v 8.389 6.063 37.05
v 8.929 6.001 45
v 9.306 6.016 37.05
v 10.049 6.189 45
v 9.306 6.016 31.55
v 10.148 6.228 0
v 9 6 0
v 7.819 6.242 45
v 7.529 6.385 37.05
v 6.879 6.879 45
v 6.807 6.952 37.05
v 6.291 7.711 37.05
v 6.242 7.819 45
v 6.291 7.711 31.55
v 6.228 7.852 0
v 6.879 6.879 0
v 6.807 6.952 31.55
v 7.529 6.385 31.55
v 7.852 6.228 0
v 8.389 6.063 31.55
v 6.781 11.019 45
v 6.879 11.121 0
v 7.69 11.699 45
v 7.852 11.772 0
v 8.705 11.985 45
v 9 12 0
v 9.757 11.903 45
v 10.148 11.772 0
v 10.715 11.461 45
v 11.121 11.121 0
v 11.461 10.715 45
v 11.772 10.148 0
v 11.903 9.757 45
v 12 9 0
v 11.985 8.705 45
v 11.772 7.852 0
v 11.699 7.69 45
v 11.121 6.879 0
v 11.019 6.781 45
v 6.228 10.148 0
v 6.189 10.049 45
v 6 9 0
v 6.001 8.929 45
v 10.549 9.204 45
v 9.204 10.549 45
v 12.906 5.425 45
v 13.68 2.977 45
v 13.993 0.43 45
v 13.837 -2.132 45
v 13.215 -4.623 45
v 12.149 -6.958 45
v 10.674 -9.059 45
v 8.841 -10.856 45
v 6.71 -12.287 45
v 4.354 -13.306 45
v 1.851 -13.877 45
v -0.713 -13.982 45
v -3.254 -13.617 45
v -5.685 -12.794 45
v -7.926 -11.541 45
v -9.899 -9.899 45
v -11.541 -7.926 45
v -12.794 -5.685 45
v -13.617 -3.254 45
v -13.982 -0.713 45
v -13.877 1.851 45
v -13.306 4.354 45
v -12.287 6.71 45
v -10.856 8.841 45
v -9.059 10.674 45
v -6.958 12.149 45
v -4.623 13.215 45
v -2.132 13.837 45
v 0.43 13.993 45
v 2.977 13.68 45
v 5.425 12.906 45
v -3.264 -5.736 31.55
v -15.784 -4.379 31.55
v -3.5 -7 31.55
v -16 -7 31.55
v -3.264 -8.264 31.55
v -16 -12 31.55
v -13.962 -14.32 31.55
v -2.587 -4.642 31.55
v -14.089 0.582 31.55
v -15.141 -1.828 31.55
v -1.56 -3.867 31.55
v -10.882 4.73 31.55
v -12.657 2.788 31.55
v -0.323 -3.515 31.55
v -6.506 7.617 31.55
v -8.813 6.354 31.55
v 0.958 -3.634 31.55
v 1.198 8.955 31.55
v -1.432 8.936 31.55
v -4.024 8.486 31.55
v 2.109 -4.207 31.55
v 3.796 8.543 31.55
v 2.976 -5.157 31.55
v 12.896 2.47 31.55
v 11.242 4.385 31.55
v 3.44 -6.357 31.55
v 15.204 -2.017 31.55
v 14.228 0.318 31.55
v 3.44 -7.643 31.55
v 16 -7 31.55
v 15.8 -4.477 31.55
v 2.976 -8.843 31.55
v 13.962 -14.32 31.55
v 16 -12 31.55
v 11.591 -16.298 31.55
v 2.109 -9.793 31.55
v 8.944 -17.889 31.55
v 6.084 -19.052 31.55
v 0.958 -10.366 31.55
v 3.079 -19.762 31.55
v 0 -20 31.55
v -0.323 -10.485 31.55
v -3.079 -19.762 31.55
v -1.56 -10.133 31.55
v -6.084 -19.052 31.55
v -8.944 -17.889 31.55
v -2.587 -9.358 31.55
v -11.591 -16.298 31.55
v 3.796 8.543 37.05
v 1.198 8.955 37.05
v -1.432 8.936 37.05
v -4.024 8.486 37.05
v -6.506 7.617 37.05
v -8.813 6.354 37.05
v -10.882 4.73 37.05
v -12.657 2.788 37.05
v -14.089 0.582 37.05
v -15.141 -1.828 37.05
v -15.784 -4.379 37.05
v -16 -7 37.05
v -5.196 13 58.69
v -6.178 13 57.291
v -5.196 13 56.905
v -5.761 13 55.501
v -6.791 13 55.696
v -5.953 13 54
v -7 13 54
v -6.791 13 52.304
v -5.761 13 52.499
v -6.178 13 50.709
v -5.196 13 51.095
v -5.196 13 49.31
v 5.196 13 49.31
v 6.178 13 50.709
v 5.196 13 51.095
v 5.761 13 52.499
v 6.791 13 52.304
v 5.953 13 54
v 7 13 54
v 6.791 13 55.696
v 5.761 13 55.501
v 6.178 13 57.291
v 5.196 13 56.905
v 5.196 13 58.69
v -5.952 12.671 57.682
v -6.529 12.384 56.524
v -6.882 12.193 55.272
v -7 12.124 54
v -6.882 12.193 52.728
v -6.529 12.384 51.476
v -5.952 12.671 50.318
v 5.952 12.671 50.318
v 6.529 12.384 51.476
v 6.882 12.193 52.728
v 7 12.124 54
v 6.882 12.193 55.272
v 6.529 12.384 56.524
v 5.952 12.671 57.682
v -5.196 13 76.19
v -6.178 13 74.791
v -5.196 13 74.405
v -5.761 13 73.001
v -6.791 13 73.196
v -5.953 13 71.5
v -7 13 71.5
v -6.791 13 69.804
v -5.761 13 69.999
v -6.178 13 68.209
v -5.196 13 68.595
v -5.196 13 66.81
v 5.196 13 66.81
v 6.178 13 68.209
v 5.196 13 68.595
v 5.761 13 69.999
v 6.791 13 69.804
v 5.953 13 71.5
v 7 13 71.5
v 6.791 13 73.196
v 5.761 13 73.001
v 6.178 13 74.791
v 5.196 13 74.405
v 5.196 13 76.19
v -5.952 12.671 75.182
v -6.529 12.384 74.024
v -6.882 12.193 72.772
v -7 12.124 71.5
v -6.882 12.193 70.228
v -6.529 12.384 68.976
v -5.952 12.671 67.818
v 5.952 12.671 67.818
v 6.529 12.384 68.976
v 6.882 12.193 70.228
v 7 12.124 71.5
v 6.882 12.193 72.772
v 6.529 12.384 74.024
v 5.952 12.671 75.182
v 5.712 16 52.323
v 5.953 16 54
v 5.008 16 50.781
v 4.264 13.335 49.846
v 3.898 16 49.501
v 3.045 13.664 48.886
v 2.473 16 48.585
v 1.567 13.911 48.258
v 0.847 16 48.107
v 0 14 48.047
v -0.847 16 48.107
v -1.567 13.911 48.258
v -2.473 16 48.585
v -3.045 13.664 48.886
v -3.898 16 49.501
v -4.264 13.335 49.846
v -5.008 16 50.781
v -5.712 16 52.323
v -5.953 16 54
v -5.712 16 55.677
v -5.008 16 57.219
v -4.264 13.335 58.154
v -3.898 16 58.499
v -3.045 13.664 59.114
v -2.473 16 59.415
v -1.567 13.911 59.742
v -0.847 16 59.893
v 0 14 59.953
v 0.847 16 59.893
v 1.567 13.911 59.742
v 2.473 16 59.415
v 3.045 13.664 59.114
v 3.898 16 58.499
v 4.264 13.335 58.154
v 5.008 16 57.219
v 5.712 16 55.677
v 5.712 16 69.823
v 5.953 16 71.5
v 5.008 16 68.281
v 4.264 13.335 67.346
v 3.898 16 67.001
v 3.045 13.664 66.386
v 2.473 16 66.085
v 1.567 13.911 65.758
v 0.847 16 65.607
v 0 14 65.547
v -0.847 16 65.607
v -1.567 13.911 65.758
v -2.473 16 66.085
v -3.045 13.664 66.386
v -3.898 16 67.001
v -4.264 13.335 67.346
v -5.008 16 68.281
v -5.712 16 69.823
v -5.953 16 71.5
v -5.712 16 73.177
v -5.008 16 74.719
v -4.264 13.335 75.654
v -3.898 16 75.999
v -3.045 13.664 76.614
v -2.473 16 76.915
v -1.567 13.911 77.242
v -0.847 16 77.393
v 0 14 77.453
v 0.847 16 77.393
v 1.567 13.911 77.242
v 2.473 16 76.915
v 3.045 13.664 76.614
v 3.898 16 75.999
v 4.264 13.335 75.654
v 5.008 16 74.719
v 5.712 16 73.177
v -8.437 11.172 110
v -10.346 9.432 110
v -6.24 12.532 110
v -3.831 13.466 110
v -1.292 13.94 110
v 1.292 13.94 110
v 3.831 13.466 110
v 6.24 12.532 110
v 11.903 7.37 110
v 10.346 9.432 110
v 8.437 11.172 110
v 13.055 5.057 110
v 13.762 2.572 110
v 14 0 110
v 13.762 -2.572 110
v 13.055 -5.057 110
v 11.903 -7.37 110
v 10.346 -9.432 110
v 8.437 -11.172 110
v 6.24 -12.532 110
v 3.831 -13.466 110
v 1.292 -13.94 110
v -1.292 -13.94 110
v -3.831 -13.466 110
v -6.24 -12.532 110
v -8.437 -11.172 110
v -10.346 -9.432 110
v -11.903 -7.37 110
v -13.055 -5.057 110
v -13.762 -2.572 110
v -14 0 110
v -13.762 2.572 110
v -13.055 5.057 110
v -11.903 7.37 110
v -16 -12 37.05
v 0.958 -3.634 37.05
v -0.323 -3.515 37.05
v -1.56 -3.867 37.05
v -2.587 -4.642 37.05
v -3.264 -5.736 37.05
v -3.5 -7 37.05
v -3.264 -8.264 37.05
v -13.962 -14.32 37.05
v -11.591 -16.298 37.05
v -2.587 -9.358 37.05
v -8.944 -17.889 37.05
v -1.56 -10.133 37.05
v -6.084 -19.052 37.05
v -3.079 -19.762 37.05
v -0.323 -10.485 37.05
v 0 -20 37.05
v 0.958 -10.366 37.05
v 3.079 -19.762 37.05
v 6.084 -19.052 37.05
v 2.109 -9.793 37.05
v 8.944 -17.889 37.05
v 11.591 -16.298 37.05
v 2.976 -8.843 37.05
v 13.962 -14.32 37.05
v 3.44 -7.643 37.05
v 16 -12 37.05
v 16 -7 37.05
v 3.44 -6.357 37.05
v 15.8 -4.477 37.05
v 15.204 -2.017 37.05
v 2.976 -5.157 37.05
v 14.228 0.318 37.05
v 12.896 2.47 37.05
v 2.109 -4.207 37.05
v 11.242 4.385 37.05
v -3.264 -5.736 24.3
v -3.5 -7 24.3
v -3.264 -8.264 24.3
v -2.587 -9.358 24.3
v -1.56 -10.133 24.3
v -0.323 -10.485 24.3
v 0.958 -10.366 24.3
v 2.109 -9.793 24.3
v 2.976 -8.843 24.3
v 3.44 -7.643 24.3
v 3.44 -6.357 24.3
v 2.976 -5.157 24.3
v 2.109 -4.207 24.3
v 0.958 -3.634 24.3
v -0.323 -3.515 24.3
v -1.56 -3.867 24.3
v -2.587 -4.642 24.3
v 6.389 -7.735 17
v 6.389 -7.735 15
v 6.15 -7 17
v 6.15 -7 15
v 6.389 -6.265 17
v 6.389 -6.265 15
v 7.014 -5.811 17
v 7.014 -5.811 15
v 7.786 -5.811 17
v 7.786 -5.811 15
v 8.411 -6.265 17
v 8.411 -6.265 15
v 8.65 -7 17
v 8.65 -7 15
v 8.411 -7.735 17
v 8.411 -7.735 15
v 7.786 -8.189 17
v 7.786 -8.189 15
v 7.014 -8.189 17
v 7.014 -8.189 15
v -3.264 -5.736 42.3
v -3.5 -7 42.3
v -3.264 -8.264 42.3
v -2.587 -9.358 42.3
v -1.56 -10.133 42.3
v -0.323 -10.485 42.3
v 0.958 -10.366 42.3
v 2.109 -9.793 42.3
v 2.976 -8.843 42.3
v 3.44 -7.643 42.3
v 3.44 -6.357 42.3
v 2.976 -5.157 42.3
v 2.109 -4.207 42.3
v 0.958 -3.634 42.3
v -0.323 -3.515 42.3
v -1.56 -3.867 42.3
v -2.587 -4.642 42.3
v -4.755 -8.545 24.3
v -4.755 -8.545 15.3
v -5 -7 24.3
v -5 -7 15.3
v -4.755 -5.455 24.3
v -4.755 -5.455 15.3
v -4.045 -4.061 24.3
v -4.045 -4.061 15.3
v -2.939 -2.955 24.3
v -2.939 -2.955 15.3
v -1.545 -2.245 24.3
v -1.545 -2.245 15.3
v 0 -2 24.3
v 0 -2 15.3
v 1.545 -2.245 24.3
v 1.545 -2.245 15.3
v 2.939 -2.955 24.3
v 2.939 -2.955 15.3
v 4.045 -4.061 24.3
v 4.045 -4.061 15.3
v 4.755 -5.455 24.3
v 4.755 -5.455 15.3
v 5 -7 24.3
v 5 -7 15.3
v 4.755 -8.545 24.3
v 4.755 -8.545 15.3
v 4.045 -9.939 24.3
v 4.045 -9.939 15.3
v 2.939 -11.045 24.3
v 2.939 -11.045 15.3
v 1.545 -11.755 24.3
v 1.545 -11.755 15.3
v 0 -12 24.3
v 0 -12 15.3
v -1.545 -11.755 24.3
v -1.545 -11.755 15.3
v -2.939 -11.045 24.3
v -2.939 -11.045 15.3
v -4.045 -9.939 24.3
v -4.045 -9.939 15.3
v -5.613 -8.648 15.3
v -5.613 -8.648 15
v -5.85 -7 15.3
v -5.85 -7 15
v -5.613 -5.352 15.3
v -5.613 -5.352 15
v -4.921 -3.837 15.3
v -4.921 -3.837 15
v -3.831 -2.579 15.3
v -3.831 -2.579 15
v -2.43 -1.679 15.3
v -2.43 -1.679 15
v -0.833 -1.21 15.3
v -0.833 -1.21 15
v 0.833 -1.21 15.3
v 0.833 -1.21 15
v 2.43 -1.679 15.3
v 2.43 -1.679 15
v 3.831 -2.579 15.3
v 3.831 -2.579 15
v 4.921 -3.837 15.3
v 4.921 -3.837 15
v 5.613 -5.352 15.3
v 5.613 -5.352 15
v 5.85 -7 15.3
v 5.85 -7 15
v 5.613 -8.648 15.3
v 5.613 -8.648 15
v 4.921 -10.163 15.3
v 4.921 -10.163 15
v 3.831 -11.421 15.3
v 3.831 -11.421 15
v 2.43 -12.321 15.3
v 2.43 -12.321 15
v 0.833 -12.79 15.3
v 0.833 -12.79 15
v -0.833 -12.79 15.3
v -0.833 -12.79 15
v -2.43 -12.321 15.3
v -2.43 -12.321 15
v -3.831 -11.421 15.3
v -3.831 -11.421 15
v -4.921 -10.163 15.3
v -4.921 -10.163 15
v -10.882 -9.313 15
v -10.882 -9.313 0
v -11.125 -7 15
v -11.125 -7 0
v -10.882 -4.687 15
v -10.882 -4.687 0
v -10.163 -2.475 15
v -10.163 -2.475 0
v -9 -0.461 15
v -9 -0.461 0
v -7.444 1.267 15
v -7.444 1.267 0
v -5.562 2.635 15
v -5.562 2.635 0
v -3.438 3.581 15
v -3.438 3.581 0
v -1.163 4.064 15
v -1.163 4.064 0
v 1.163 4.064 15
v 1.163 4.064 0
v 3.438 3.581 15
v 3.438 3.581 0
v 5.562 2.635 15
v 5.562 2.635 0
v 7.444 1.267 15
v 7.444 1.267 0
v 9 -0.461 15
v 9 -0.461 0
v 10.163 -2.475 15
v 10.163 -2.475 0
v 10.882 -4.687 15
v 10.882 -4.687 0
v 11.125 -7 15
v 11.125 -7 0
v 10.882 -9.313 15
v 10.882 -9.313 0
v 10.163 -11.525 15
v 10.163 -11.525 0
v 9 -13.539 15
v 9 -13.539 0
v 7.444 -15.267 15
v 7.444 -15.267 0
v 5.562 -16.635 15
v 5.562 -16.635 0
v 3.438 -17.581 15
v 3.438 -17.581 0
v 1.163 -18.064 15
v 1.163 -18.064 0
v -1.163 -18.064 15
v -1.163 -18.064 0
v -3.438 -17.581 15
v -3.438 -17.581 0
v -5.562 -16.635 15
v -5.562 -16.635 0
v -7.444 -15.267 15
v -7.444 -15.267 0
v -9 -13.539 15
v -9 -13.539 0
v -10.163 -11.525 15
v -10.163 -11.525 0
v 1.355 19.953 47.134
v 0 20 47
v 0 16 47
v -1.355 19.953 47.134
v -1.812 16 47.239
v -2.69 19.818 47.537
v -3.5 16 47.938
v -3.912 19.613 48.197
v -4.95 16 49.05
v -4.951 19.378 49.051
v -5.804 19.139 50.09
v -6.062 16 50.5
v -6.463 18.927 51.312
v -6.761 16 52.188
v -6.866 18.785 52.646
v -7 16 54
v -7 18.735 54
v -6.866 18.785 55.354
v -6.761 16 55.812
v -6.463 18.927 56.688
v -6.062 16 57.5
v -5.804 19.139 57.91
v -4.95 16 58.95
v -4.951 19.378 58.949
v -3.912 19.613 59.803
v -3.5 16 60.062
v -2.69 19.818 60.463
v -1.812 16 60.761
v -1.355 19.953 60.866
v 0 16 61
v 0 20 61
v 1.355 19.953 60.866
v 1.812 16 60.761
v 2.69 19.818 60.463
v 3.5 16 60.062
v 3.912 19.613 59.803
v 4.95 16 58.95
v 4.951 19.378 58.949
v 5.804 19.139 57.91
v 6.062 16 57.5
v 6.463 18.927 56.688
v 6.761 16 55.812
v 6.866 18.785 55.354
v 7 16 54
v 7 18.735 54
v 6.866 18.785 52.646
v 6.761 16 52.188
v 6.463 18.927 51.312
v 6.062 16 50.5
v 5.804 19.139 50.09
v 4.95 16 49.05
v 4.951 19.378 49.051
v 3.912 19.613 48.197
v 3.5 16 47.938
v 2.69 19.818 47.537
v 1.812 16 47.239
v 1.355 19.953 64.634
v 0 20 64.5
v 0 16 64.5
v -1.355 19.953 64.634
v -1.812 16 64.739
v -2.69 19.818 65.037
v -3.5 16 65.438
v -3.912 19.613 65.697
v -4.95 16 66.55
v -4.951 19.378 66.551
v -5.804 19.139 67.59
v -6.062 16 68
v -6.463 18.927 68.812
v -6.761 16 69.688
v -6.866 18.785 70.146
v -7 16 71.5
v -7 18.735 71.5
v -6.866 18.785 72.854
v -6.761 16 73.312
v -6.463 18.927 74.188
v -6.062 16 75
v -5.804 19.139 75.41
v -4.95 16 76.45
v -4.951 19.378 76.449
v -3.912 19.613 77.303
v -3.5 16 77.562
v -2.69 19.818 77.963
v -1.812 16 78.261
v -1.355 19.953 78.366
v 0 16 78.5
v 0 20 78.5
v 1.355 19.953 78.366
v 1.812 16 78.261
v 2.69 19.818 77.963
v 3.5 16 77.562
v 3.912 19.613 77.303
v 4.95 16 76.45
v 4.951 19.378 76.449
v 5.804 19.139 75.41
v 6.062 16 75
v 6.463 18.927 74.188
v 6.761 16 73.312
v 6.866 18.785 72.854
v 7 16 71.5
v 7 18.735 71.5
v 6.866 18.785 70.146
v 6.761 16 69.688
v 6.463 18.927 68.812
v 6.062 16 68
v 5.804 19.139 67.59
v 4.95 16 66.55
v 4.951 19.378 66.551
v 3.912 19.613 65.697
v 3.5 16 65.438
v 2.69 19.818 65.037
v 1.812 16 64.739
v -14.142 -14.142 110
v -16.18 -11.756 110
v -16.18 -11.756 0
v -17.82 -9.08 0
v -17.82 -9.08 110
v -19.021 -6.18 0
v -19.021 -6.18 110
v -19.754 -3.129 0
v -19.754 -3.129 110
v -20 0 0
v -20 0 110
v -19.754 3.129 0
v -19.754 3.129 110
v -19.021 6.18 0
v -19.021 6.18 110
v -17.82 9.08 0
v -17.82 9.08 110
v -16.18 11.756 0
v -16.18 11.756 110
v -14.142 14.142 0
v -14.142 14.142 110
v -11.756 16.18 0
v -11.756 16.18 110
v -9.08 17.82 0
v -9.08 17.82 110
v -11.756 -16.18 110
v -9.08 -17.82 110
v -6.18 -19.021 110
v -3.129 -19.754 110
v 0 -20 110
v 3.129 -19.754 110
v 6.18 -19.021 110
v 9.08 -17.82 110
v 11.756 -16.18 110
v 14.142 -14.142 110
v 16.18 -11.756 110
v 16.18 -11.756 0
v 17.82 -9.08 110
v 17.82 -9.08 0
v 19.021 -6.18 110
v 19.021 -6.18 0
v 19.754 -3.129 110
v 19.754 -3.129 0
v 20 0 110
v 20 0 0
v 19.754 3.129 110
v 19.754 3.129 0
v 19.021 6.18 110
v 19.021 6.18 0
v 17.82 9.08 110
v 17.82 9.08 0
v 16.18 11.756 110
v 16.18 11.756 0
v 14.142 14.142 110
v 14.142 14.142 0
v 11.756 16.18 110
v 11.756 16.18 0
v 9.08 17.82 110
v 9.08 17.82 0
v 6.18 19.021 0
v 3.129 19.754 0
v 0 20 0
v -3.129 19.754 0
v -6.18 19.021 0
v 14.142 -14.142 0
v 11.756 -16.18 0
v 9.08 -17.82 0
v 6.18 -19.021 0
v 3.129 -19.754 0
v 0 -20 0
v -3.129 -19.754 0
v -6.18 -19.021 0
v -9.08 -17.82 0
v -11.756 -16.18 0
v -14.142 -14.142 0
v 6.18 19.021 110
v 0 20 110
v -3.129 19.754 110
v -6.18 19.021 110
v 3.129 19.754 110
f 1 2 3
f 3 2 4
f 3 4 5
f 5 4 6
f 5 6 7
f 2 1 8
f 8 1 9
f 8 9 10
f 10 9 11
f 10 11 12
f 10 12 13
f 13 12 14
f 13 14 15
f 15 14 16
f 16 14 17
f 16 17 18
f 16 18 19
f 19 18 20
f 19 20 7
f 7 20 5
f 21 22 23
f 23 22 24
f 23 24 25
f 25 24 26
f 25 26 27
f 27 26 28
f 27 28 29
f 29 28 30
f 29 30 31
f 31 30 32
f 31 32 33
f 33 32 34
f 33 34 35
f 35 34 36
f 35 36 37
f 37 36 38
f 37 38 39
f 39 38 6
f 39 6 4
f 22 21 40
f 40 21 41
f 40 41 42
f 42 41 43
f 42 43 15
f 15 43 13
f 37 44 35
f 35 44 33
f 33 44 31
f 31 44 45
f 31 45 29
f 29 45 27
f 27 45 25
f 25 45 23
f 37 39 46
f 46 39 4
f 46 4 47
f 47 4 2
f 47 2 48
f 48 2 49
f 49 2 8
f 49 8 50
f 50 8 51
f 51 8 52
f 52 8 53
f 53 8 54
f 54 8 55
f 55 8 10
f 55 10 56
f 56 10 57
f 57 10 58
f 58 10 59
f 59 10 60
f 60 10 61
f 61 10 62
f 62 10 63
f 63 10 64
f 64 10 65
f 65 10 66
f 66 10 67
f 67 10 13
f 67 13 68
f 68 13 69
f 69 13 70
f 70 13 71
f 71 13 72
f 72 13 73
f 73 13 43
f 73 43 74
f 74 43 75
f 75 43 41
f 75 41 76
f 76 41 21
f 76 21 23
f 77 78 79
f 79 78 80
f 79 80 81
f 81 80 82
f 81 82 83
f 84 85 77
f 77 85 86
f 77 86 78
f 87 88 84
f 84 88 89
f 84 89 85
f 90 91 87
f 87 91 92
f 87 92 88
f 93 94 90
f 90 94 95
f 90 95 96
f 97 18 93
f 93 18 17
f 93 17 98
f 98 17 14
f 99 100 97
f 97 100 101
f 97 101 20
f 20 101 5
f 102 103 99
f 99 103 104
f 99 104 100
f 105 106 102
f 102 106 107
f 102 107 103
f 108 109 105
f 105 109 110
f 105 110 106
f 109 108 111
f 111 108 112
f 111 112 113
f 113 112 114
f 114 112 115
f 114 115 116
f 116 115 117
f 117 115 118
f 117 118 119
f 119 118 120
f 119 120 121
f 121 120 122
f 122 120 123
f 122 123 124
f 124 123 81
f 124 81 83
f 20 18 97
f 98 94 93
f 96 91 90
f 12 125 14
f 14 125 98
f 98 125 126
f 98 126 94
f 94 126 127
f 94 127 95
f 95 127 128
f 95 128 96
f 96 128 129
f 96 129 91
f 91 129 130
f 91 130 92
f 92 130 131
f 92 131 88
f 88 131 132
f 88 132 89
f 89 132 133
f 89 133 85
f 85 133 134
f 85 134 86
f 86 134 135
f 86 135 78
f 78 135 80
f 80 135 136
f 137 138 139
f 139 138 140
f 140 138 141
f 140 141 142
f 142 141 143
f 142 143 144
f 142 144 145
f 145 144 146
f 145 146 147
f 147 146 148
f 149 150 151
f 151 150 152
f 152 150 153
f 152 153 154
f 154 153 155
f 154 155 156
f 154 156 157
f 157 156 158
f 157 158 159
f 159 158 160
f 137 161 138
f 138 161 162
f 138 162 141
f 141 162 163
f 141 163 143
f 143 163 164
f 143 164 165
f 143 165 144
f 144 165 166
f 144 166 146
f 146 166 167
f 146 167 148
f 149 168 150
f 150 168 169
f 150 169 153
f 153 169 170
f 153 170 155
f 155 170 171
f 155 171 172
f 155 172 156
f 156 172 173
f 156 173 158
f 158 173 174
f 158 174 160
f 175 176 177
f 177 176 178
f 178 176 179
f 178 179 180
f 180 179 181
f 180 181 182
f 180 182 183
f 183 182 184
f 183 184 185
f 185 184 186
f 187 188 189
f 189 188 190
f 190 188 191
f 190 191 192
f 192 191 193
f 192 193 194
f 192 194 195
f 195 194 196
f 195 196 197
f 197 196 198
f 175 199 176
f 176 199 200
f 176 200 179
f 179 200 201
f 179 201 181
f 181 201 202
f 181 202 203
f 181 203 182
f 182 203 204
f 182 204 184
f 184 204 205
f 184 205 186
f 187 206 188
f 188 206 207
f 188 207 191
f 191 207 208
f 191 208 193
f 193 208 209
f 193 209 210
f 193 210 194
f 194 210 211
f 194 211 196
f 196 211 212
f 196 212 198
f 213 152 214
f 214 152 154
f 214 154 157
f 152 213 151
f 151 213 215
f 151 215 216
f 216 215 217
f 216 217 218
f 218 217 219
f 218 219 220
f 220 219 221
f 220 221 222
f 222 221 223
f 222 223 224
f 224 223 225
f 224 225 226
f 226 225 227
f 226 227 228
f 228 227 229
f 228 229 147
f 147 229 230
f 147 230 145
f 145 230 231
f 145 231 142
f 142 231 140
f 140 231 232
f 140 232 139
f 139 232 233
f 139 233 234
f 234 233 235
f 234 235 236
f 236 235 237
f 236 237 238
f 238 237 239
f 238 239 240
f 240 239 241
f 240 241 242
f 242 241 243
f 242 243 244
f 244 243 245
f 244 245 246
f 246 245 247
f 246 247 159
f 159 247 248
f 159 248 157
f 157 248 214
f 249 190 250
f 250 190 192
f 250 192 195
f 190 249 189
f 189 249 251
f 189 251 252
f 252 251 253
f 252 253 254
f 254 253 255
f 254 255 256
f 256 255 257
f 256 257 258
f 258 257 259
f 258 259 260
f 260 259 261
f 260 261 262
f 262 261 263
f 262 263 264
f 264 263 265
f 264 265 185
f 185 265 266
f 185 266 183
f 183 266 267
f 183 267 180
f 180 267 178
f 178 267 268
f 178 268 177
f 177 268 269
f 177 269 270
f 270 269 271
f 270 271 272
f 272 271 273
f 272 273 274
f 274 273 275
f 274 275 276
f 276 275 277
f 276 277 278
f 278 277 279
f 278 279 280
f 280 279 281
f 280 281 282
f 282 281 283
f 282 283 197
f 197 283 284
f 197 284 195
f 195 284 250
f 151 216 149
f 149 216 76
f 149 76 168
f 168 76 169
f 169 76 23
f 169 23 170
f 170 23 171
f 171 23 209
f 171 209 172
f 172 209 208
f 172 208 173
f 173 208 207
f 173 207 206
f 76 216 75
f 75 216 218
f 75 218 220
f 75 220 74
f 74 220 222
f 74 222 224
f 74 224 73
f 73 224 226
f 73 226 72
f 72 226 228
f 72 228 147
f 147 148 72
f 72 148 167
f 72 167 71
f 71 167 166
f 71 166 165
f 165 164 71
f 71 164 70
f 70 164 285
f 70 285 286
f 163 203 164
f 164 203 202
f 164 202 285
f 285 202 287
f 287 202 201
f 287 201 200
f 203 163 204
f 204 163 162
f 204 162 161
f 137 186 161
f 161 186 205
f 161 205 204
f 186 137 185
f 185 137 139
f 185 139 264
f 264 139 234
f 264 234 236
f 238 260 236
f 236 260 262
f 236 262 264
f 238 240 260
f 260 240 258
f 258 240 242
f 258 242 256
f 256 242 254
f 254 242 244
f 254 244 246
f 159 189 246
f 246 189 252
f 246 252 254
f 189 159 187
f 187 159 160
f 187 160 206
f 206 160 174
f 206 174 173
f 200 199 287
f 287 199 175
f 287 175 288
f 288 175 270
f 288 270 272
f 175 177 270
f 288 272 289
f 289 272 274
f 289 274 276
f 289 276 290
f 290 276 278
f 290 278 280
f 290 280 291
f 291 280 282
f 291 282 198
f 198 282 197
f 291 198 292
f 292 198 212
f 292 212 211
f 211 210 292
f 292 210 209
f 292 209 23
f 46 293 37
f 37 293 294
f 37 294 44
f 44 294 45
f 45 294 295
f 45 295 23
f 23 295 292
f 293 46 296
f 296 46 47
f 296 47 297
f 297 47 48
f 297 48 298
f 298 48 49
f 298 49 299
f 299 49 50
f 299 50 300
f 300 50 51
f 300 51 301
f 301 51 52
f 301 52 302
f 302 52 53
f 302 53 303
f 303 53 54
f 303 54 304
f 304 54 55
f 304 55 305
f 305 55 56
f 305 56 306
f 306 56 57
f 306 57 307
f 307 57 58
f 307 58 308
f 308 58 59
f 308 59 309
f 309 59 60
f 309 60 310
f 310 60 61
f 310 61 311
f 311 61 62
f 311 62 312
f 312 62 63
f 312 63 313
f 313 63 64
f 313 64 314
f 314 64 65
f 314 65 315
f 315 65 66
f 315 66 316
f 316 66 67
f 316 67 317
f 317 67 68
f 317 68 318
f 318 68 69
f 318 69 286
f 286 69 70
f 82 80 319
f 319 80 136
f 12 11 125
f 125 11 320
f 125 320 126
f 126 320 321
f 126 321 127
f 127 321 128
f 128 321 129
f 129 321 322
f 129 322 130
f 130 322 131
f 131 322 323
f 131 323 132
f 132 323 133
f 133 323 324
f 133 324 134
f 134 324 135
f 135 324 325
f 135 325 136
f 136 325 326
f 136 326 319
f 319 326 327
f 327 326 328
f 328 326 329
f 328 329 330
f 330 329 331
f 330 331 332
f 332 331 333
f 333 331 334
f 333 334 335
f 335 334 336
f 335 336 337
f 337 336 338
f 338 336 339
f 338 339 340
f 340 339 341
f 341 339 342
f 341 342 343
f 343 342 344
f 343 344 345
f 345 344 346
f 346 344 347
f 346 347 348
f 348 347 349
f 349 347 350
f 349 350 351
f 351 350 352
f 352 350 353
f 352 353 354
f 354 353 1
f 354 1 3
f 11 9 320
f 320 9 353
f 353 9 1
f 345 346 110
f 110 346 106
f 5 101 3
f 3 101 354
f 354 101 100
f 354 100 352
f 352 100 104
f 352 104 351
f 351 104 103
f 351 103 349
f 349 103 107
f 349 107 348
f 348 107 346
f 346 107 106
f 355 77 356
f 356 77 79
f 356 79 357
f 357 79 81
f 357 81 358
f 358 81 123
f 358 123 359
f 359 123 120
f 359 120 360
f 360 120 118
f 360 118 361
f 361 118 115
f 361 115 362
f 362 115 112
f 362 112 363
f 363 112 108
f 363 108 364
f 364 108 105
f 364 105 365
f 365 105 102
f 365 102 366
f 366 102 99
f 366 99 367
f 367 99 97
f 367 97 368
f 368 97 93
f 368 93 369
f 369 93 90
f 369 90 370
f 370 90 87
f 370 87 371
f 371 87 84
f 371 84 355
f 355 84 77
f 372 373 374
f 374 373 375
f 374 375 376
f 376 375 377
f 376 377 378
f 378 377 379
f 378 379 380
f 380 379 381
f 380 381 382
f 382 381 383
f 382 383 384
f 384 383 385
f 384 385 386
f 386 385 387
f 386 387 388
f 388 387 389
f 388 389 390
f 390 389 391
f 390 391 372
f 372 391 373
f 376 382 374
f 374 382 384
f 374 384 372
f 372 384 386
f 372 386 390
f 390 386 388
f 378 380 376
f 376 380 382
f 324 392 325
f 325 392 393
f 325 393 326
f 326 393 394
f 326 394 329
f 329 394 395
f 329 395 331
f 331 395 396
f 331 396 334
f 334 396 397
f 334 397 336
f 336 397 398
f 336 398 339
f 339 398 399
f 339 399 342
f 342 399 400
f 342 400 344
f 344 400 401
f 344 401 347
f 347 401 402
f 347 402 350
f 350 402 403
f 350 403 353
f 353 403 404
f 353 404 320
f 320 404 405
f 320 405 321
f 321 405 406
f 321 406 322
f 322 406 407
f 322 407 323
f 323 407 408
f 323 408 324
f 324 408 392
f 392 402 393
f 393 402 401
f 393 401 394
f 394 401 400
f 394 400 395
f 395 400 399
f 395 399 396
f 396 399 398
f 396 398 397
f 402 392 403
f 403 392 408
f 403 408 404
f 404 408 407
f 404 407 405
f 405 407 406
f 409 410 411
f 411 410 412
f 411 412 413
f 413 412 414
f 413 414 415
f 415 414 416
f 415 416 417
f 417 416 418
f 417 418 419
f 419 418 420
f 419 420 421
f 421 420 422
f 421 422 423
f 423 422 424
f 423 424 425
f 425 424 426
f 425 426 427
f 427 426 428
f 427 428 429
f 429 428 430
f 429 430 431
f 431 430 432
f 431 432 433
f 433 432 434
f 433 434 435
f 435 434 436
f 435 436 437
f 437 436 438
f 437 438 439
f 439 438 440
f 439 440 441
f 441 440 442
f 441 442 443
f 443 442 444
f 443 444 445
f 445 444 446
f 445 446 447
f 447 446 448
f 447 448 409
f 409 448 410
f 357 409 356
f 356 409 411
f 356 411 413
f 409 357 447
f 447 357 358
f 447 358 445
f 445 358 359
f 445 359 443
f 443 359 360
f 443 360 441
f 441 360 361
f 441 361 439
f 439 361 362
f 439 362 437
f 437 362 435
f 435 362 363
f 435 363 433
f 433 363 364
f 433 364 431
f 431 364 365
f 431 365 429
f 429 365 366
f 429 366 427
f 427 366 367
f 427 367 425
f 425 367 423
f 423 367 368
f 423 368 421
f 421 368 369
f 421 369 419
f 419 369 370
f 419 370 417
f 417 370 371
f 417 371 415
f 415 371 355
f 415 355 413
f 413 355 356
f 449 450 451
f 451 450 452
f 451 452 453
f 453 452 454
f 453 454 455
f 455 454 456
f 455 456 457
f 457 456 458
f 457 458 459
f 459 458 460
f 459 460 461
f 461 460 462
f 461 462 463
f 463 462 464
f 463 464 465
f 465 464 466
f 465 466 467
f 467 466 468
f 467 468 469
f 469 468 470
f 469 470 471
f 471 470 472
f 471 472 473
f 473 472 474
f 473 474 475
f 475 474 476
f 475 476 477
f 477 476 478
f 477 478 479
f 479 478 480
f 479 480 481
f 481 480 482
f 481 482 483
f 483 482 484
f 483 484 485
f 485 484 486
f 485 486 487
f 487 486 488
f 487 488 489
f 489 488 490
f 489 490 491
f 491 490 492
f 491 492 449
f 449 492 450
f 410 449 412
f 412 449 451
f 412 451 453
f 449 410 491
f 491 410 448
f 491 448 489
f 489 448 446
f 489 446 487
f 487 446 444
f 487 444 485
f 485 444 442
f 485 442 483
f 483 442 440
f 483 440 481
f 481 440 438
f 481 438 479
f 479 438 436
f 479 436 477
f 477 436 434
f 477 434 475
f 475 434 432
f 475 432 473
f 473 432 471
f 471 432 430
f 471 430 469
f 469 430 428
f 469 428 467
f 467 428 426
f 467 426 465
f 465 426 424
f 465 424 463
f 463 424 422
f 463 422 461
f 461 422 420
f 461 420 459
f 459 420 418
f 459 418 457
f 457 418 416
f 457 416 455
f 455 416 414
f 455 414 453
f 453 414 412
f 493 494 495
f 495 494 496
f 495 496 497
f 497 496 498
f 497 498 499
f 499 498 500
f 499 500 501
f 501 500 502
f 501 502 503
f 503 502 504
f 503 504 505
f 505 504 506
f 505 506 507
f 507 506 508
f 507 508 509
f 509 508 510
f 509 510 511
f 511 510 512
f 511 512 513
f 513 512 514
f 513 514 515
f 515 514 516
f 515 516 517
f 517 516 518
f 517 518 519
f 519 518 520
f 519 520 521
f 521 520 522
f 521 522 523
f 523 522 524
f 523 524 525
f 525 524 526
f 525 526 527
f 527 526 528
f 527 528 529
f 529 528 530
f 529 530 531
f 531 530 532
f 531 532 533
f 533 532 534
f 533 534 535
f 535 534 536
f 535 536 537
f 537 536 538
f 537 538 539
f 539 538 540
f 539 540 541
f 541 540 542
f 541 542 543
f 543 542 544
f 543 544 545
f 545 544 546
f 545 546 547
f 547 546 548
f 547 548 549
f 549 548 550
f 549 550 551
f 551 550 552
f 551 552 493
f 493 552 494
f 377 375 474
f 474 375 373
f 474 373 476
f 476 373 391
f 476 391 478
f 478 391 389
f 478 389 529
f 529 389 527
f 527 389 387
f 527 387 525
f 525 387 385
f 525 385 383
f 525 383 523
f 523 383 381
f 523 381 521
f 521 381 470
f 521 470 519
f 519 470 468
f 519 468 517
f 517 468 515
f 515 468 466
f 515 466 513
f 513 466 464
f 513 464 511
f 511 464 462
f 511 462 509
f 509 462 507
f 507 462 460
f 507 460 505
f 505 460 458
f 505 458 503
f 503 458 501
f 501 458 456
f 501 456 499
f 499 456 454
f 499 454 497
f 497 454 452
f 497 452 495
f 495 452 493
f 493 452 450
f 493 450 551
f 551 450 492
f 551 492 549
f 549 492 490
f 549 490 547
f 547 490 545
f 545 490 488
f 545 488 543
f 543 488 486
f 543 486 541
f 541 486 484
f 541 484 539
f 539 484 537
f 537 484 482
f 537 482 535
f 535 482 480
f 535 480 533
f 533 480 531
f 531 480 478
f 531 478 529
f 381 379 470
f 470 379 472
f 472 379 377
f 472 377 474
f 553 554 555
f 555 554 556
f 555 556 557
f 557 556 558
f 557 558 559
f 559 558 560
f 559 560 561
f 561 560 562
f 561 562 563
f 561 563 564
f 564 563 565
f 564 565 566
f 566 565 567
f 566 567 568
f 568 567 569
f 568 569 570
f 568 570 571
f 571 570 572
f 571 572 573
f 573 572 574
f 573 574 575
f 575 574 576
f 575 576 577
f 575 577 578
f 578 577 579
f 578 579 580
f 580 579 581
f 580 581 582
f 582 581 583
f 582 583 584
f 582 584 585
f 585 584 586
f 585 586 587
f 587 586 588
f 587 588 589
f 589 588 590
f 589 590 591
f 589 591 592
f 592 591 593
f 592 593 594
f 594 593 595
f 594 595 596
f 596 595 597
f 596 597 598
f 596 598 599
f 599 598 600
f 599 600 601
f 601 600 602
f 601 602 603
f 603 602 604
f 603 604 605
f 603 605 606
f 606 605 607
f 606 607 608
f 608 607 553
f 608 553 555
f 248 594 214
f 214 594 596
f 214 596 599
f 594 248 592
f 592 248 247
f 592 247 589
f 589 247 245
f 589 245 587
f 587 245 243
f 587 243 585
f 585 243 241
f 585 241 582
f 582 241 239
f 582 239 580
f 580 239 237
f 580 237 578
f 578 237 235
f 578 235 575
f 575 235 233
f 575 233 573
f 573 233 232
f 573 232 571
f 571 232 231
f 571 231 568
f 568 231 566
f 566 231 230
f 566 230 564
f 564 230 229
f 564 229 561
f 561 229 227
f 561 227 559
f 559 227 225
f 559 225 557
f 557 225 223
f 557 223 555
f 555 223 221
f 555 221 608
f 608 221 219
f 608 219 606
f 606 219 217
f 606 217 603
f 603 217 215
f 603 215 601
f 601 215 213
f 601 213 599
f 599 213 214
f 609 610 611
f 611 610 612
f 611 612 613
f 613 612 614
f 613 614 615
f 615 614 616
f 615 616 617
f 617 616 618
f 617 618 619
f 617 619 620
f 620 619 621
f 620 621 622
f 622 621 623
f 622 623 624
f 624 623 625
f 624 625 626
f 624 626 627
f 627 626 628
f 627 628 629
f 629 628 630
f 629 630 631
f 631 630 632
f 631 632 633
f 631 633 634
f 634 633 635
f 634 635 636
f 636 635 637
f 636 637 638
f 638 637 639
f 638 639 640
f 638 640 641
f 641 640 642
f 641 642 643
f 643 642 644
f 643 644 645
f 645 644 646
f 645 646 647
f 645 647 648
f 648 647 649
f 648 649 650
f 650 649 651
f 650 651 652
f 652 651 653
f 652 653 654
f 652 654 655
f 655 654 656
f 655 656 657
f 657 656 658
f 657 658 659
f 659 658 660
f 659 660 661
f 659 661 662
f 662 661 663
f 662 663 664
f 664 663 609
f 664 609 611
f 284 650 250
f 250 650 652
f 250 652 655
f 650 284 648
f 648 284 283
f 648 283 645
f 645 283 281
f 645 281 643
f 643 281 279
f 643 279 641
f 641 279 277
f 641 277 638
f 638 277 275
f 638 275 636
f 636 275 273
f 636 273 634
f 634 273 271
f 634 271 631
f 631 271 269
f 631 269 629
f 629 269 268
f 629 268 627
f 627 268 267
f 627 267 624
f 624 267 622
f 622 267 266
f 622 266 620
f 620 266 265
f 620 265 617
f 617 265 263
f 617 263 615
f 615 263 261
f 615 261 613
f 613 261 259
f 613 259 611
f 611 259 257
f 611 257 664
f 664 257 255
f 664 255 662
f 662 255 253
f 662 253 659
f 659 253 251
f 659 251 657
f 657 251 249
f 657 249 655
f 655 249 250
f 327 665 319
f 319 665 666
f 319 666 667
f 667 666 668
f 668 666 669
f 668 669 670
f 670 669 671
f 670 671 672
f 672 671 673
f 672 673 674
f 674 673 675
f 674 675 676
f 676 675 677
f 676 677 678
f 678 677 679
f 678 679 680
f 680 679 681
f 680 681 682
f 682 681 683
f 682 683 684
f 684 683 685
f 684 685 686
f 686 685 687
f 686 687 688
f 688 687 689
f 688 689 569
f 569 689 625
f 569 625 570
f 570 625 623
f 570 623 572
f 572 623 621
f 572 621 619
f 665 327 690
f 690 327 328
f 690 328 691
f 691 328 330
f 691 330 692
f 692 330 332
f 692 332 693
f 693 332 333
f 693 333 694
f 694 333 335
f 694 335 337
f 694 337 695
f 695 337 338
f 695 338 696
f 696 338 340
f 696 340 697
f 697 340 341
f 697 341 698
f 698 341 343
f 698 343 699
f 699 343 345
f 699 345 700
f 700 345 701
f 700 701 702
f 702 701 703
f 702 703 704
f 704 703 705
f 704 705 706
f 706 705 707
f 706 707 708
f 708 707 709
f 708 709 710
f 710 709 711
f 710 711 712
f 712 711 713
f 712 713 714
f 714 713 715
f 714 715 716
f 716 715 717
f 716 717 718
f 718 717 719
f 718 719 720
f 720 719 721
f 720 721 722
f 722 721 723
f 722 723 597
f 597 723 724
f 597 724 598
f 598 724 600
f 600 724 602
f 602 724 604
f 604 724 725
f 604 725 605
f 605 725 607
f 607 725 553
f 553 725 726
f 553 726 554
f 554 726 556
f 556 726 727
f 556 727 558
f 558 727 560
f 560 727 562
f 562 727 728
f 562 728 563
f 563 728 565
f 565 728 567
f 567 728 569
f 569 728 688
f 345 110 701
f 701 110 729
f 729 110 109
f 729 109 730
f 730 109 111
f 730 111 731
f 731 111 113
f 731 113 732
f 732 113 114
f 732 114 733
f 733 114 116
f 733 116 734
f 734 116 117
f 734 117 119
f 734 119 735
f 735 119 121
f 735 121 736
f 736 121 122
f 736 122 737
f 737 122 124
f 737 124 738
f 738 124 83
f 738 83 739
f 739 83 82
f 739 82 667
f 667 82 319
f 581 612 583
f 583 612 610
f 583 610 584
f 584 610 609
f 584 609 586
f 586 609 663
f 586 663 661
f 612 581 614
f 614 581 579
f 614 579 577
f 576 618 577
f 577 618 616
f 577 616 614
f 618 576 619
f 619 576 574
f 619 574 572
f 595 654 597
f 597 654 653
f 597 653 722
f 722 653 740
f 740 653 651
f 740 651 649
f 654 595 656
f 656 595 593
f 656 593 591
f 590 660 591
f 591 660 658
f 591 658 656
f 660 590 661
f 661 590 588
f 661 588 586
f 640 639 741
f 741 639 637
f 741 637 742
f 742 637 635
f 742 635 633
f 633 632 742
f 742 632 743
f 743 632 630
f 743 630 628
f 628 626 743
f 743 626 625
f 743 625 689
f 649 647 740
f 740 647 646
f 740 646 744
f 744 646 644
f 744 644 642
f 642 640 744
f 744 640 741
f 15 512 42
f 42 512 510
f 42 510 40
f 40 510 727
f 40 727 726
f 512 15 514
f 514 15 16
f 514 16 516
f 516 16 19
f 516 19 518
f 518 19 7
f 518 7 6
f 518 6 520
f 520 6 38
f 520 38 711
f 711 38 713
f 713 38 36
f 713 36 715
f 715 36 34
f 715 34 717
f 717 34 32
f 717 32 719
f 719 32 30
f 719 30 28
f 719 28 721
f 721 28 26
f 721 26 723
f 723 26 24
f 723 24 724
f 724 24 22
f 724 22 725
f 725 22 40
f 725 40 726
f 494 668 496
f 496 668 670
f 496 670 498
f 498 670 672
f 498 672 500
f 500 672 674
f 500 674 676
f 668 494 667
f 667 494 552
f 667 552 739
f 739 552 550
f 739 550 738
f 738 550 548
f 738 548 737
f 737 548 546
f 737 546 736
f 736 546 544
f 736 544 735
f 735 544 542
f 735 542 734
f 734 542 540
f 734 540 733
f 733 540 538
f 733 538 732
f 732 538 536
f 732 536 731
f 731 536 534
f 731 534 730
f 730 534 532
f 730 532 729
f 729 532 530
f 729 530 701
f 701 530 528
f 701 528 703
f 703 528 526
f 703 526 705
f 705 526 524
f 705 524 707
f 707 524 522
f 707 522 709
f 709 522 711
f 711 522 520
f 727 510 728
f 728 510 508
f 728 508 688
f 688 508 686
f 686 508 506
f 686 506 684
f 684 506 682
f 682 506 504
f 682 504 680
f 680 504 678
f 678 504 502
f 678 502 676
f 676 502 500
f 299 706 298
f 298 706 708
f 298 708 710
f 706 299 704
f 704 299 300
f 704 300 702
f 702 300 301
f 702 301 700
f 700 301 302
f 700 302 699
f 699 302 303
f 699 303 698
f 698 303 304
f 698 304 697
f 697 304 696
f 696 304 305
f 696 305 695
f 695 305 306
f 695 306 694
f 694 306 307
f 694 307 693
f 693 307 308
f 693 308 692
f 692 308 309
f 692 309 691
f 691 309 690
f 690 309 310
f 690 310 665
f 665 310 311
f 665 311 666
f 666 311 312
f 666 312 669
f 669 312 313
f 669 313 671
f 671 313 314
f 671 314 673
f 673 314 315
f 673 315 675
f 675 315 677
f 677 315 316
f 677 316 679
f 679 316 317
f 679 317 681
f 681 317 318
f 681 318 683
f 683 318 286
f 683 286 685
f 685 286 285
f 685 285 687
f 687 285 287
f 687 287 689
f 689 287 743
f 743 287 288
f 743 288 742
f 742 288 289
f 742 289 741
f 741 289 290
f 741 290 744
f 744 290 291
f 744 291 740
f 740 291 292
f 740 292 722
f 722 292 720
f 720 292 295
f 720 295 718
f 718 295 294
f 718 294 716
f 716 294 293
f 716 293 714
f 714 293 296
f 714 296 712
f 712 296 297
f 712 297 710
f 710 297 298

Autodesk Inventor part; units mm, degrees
ref_plane "YZ Plane" through (0, 0, 0) normal (1, 0, 0) x (0, 1, 0)
sketch "Sketch1" plane through (0, 0, 0) normal (0, 0, 1) x (1, 0, 0)
  circle A0 centre (0, 0) radius 20
  dimension "d0" = 40
extrude "Extrusion1" add sketch "Sketch1" along normal blind 110
ref_plane "Work Plane2" through (0, 20, 0) normal (0, 1, 0) x (-1, 0, 0)
sketch "Sketch3" plane through (0, 20, 0) normal (0, 1, 0) x (-1, 0, 0)
  circle A0 centre (0, 54) radius 7
  circle A1 centre (0, 71.5) radius 7
  point P0 (0, 0)
  dimension "d3" = 14
  dimension "d4" = 14
  dimension "d5" = 17.5
  dimension "d6" = 54
  dimension "d7" = 0
  dimension "d8" = 0
extrude "Extrusion2" cut sketch "Sketch3" against normal blind 4
sketch "Sketch4" plane through (0, 16, 71.5) normal (0, 1, 0) x (1, 0, 0)
  circle A0 centre (0, 0) radius 7 projected
  circle A1 centre (0, 0) radius 5.9531
  circle A2 centre (0, 17.5) radius 7 projected
  circle A3 centre (0, 17.5) radius 5.9531
  point P0 (0, 71.5)
  dimension "d11" = 11.9062
  dimension "d12" = 11.9062
extrude "Extrusion3" cut sketch "Sketch4" against normal blind 23 contours A1 | A3
sketch "Sketch5" plane through (0, 0, 0) normal (0, 0, -1) x (-1, 0, 0)
  circle A0 centre (0, -7) radius 11.125
  point P0 (0, 0)
  dimension "d15" = 22.25
  dimension "d40" = 0
  dimension "d63" = 7
extrude "Extrusion4" cut sketch "Sketch5" against normal blind 15
sketch "Sketch6" plane through (0, -7, 15) normal (0, 0, -1) x (-1, 0, 0)
  circle A0 centre (0, 0) radius 5.85
  circle A1 centre (0, 0) radius 11.125 projected
  point P0 (0, 7)
  dimension "d19" = 11.7
extrude "Extrusion5" cut sketch "Sketch6" against normal blind 0.3 contours A0
sketch "Sketch7" plane through (0, -7, 15.3) normal (0, 0, -1) x (-1, 0, 0)
  circle A0 centre (0, 0) radius 5
  circle A1 centre (0, 0) radius 5.85 projected
  point P0 (0, 7)
  dimension "d22" = 10
extrude "Extrusion6" cut sketch "Sketch7" against normal blind 9 contours A0
sketch "Sketch8" plane through (0, -7, 24.3) normal (0, 0, -1) x (-1, 0, 0)
  circle A0 centre (0, 0) radius 3.5
  circle A1 centre (0, 0) radius 5 projected
  point P0 (0, 7)
  dimension "d25" = 7
extrude "Extrusion7" cut sketch "Sketch8" against normal blind 18 contours A0
sketch "Sketch9" plane through (0, -7, 15) normal (0, 0, -1) x (-1, 0, 0)
  circle A0 centre (-7.4, 0) radius 1.25
  circle A1 centre (0, 0) radius 3.5 projected
  point P0 (0, 7)
  dimension "d28" = 2.5
  dimension "d29" = 7.4
  dimension "d30" = 0
extrude "Extrusion8" cut sketch "Sketch9" against normal blind 2 contours A0
ref_plane "Work Plane3" through (0, -7, 34.3) normal (0, 0, -1) x (-1, 0, 0)
sketch "Sketch11" plane through (0, -7, 34.3) normal (0, 0, -1) x (-1, 0, 0)
  circle A0 centre (0, 0) radius 3.5 projected
  arc A1 (16, 0) -> (-16, 0) centre (0, 0) ccw
  line L0 (16, 0) -> (16, -16)
  line L1 (16, -16) -> (-16, -16)
  line L2 (-16, -16) -> (-16, 0)
  point P0 (0, 7)
  dimension "d37" = 32
extrude "Extrusion10" cut sketch "Sketch11" along normal mid plane 5.5
sketch "Sketch12" plane through (0, 0, 0) normal (0, 0, -1) x (-1, 0, 0)
  circle A0 centre (-9, 9) radius 3
  circle A1 centre (0, 0) radius 20 projected
  dimension "d58" = 6
  dimension "d59" = 9
  dimension "d60" = 9
sketch "Sketch13" plane through (0, 0, 110) normal (0, 0, 1) x (1, 0, 0)
  circle A0 centre (0, 0) radius 14
  dimension "d44" = 28
extrude "Extrusion11" cut sketch "Sketch13" against normal blind 65
ref_plane "Work Plane5" through (0, 13, 71.5) normal (0, 1, 0) x (1, 0, 0)
sketch "Sketch15" plane through (0, 13, 71.5) normal (0, 1, 0) x (1, 0, 0)
  circle A0 centre (0, 17.5) radius 7 projected
  circle A1 centre (0, 17.5) radius 8.5
  circle A2 centre (0, 0) radius 7 projected
  circle A3 centre (0, 0) radius 8.5
  point P0 (0, 71.5)
  dimension "d54" = 17
  dimension "d55" = 17
extrude "Extrusion14" cut sketch "Sketch15" against normal blind 10 contours A0 | A2
extrude "Extrusion15" cut sketch "Sketch12" against normal up to surface (45 mm away) contours A0
properties part number "Housing"
